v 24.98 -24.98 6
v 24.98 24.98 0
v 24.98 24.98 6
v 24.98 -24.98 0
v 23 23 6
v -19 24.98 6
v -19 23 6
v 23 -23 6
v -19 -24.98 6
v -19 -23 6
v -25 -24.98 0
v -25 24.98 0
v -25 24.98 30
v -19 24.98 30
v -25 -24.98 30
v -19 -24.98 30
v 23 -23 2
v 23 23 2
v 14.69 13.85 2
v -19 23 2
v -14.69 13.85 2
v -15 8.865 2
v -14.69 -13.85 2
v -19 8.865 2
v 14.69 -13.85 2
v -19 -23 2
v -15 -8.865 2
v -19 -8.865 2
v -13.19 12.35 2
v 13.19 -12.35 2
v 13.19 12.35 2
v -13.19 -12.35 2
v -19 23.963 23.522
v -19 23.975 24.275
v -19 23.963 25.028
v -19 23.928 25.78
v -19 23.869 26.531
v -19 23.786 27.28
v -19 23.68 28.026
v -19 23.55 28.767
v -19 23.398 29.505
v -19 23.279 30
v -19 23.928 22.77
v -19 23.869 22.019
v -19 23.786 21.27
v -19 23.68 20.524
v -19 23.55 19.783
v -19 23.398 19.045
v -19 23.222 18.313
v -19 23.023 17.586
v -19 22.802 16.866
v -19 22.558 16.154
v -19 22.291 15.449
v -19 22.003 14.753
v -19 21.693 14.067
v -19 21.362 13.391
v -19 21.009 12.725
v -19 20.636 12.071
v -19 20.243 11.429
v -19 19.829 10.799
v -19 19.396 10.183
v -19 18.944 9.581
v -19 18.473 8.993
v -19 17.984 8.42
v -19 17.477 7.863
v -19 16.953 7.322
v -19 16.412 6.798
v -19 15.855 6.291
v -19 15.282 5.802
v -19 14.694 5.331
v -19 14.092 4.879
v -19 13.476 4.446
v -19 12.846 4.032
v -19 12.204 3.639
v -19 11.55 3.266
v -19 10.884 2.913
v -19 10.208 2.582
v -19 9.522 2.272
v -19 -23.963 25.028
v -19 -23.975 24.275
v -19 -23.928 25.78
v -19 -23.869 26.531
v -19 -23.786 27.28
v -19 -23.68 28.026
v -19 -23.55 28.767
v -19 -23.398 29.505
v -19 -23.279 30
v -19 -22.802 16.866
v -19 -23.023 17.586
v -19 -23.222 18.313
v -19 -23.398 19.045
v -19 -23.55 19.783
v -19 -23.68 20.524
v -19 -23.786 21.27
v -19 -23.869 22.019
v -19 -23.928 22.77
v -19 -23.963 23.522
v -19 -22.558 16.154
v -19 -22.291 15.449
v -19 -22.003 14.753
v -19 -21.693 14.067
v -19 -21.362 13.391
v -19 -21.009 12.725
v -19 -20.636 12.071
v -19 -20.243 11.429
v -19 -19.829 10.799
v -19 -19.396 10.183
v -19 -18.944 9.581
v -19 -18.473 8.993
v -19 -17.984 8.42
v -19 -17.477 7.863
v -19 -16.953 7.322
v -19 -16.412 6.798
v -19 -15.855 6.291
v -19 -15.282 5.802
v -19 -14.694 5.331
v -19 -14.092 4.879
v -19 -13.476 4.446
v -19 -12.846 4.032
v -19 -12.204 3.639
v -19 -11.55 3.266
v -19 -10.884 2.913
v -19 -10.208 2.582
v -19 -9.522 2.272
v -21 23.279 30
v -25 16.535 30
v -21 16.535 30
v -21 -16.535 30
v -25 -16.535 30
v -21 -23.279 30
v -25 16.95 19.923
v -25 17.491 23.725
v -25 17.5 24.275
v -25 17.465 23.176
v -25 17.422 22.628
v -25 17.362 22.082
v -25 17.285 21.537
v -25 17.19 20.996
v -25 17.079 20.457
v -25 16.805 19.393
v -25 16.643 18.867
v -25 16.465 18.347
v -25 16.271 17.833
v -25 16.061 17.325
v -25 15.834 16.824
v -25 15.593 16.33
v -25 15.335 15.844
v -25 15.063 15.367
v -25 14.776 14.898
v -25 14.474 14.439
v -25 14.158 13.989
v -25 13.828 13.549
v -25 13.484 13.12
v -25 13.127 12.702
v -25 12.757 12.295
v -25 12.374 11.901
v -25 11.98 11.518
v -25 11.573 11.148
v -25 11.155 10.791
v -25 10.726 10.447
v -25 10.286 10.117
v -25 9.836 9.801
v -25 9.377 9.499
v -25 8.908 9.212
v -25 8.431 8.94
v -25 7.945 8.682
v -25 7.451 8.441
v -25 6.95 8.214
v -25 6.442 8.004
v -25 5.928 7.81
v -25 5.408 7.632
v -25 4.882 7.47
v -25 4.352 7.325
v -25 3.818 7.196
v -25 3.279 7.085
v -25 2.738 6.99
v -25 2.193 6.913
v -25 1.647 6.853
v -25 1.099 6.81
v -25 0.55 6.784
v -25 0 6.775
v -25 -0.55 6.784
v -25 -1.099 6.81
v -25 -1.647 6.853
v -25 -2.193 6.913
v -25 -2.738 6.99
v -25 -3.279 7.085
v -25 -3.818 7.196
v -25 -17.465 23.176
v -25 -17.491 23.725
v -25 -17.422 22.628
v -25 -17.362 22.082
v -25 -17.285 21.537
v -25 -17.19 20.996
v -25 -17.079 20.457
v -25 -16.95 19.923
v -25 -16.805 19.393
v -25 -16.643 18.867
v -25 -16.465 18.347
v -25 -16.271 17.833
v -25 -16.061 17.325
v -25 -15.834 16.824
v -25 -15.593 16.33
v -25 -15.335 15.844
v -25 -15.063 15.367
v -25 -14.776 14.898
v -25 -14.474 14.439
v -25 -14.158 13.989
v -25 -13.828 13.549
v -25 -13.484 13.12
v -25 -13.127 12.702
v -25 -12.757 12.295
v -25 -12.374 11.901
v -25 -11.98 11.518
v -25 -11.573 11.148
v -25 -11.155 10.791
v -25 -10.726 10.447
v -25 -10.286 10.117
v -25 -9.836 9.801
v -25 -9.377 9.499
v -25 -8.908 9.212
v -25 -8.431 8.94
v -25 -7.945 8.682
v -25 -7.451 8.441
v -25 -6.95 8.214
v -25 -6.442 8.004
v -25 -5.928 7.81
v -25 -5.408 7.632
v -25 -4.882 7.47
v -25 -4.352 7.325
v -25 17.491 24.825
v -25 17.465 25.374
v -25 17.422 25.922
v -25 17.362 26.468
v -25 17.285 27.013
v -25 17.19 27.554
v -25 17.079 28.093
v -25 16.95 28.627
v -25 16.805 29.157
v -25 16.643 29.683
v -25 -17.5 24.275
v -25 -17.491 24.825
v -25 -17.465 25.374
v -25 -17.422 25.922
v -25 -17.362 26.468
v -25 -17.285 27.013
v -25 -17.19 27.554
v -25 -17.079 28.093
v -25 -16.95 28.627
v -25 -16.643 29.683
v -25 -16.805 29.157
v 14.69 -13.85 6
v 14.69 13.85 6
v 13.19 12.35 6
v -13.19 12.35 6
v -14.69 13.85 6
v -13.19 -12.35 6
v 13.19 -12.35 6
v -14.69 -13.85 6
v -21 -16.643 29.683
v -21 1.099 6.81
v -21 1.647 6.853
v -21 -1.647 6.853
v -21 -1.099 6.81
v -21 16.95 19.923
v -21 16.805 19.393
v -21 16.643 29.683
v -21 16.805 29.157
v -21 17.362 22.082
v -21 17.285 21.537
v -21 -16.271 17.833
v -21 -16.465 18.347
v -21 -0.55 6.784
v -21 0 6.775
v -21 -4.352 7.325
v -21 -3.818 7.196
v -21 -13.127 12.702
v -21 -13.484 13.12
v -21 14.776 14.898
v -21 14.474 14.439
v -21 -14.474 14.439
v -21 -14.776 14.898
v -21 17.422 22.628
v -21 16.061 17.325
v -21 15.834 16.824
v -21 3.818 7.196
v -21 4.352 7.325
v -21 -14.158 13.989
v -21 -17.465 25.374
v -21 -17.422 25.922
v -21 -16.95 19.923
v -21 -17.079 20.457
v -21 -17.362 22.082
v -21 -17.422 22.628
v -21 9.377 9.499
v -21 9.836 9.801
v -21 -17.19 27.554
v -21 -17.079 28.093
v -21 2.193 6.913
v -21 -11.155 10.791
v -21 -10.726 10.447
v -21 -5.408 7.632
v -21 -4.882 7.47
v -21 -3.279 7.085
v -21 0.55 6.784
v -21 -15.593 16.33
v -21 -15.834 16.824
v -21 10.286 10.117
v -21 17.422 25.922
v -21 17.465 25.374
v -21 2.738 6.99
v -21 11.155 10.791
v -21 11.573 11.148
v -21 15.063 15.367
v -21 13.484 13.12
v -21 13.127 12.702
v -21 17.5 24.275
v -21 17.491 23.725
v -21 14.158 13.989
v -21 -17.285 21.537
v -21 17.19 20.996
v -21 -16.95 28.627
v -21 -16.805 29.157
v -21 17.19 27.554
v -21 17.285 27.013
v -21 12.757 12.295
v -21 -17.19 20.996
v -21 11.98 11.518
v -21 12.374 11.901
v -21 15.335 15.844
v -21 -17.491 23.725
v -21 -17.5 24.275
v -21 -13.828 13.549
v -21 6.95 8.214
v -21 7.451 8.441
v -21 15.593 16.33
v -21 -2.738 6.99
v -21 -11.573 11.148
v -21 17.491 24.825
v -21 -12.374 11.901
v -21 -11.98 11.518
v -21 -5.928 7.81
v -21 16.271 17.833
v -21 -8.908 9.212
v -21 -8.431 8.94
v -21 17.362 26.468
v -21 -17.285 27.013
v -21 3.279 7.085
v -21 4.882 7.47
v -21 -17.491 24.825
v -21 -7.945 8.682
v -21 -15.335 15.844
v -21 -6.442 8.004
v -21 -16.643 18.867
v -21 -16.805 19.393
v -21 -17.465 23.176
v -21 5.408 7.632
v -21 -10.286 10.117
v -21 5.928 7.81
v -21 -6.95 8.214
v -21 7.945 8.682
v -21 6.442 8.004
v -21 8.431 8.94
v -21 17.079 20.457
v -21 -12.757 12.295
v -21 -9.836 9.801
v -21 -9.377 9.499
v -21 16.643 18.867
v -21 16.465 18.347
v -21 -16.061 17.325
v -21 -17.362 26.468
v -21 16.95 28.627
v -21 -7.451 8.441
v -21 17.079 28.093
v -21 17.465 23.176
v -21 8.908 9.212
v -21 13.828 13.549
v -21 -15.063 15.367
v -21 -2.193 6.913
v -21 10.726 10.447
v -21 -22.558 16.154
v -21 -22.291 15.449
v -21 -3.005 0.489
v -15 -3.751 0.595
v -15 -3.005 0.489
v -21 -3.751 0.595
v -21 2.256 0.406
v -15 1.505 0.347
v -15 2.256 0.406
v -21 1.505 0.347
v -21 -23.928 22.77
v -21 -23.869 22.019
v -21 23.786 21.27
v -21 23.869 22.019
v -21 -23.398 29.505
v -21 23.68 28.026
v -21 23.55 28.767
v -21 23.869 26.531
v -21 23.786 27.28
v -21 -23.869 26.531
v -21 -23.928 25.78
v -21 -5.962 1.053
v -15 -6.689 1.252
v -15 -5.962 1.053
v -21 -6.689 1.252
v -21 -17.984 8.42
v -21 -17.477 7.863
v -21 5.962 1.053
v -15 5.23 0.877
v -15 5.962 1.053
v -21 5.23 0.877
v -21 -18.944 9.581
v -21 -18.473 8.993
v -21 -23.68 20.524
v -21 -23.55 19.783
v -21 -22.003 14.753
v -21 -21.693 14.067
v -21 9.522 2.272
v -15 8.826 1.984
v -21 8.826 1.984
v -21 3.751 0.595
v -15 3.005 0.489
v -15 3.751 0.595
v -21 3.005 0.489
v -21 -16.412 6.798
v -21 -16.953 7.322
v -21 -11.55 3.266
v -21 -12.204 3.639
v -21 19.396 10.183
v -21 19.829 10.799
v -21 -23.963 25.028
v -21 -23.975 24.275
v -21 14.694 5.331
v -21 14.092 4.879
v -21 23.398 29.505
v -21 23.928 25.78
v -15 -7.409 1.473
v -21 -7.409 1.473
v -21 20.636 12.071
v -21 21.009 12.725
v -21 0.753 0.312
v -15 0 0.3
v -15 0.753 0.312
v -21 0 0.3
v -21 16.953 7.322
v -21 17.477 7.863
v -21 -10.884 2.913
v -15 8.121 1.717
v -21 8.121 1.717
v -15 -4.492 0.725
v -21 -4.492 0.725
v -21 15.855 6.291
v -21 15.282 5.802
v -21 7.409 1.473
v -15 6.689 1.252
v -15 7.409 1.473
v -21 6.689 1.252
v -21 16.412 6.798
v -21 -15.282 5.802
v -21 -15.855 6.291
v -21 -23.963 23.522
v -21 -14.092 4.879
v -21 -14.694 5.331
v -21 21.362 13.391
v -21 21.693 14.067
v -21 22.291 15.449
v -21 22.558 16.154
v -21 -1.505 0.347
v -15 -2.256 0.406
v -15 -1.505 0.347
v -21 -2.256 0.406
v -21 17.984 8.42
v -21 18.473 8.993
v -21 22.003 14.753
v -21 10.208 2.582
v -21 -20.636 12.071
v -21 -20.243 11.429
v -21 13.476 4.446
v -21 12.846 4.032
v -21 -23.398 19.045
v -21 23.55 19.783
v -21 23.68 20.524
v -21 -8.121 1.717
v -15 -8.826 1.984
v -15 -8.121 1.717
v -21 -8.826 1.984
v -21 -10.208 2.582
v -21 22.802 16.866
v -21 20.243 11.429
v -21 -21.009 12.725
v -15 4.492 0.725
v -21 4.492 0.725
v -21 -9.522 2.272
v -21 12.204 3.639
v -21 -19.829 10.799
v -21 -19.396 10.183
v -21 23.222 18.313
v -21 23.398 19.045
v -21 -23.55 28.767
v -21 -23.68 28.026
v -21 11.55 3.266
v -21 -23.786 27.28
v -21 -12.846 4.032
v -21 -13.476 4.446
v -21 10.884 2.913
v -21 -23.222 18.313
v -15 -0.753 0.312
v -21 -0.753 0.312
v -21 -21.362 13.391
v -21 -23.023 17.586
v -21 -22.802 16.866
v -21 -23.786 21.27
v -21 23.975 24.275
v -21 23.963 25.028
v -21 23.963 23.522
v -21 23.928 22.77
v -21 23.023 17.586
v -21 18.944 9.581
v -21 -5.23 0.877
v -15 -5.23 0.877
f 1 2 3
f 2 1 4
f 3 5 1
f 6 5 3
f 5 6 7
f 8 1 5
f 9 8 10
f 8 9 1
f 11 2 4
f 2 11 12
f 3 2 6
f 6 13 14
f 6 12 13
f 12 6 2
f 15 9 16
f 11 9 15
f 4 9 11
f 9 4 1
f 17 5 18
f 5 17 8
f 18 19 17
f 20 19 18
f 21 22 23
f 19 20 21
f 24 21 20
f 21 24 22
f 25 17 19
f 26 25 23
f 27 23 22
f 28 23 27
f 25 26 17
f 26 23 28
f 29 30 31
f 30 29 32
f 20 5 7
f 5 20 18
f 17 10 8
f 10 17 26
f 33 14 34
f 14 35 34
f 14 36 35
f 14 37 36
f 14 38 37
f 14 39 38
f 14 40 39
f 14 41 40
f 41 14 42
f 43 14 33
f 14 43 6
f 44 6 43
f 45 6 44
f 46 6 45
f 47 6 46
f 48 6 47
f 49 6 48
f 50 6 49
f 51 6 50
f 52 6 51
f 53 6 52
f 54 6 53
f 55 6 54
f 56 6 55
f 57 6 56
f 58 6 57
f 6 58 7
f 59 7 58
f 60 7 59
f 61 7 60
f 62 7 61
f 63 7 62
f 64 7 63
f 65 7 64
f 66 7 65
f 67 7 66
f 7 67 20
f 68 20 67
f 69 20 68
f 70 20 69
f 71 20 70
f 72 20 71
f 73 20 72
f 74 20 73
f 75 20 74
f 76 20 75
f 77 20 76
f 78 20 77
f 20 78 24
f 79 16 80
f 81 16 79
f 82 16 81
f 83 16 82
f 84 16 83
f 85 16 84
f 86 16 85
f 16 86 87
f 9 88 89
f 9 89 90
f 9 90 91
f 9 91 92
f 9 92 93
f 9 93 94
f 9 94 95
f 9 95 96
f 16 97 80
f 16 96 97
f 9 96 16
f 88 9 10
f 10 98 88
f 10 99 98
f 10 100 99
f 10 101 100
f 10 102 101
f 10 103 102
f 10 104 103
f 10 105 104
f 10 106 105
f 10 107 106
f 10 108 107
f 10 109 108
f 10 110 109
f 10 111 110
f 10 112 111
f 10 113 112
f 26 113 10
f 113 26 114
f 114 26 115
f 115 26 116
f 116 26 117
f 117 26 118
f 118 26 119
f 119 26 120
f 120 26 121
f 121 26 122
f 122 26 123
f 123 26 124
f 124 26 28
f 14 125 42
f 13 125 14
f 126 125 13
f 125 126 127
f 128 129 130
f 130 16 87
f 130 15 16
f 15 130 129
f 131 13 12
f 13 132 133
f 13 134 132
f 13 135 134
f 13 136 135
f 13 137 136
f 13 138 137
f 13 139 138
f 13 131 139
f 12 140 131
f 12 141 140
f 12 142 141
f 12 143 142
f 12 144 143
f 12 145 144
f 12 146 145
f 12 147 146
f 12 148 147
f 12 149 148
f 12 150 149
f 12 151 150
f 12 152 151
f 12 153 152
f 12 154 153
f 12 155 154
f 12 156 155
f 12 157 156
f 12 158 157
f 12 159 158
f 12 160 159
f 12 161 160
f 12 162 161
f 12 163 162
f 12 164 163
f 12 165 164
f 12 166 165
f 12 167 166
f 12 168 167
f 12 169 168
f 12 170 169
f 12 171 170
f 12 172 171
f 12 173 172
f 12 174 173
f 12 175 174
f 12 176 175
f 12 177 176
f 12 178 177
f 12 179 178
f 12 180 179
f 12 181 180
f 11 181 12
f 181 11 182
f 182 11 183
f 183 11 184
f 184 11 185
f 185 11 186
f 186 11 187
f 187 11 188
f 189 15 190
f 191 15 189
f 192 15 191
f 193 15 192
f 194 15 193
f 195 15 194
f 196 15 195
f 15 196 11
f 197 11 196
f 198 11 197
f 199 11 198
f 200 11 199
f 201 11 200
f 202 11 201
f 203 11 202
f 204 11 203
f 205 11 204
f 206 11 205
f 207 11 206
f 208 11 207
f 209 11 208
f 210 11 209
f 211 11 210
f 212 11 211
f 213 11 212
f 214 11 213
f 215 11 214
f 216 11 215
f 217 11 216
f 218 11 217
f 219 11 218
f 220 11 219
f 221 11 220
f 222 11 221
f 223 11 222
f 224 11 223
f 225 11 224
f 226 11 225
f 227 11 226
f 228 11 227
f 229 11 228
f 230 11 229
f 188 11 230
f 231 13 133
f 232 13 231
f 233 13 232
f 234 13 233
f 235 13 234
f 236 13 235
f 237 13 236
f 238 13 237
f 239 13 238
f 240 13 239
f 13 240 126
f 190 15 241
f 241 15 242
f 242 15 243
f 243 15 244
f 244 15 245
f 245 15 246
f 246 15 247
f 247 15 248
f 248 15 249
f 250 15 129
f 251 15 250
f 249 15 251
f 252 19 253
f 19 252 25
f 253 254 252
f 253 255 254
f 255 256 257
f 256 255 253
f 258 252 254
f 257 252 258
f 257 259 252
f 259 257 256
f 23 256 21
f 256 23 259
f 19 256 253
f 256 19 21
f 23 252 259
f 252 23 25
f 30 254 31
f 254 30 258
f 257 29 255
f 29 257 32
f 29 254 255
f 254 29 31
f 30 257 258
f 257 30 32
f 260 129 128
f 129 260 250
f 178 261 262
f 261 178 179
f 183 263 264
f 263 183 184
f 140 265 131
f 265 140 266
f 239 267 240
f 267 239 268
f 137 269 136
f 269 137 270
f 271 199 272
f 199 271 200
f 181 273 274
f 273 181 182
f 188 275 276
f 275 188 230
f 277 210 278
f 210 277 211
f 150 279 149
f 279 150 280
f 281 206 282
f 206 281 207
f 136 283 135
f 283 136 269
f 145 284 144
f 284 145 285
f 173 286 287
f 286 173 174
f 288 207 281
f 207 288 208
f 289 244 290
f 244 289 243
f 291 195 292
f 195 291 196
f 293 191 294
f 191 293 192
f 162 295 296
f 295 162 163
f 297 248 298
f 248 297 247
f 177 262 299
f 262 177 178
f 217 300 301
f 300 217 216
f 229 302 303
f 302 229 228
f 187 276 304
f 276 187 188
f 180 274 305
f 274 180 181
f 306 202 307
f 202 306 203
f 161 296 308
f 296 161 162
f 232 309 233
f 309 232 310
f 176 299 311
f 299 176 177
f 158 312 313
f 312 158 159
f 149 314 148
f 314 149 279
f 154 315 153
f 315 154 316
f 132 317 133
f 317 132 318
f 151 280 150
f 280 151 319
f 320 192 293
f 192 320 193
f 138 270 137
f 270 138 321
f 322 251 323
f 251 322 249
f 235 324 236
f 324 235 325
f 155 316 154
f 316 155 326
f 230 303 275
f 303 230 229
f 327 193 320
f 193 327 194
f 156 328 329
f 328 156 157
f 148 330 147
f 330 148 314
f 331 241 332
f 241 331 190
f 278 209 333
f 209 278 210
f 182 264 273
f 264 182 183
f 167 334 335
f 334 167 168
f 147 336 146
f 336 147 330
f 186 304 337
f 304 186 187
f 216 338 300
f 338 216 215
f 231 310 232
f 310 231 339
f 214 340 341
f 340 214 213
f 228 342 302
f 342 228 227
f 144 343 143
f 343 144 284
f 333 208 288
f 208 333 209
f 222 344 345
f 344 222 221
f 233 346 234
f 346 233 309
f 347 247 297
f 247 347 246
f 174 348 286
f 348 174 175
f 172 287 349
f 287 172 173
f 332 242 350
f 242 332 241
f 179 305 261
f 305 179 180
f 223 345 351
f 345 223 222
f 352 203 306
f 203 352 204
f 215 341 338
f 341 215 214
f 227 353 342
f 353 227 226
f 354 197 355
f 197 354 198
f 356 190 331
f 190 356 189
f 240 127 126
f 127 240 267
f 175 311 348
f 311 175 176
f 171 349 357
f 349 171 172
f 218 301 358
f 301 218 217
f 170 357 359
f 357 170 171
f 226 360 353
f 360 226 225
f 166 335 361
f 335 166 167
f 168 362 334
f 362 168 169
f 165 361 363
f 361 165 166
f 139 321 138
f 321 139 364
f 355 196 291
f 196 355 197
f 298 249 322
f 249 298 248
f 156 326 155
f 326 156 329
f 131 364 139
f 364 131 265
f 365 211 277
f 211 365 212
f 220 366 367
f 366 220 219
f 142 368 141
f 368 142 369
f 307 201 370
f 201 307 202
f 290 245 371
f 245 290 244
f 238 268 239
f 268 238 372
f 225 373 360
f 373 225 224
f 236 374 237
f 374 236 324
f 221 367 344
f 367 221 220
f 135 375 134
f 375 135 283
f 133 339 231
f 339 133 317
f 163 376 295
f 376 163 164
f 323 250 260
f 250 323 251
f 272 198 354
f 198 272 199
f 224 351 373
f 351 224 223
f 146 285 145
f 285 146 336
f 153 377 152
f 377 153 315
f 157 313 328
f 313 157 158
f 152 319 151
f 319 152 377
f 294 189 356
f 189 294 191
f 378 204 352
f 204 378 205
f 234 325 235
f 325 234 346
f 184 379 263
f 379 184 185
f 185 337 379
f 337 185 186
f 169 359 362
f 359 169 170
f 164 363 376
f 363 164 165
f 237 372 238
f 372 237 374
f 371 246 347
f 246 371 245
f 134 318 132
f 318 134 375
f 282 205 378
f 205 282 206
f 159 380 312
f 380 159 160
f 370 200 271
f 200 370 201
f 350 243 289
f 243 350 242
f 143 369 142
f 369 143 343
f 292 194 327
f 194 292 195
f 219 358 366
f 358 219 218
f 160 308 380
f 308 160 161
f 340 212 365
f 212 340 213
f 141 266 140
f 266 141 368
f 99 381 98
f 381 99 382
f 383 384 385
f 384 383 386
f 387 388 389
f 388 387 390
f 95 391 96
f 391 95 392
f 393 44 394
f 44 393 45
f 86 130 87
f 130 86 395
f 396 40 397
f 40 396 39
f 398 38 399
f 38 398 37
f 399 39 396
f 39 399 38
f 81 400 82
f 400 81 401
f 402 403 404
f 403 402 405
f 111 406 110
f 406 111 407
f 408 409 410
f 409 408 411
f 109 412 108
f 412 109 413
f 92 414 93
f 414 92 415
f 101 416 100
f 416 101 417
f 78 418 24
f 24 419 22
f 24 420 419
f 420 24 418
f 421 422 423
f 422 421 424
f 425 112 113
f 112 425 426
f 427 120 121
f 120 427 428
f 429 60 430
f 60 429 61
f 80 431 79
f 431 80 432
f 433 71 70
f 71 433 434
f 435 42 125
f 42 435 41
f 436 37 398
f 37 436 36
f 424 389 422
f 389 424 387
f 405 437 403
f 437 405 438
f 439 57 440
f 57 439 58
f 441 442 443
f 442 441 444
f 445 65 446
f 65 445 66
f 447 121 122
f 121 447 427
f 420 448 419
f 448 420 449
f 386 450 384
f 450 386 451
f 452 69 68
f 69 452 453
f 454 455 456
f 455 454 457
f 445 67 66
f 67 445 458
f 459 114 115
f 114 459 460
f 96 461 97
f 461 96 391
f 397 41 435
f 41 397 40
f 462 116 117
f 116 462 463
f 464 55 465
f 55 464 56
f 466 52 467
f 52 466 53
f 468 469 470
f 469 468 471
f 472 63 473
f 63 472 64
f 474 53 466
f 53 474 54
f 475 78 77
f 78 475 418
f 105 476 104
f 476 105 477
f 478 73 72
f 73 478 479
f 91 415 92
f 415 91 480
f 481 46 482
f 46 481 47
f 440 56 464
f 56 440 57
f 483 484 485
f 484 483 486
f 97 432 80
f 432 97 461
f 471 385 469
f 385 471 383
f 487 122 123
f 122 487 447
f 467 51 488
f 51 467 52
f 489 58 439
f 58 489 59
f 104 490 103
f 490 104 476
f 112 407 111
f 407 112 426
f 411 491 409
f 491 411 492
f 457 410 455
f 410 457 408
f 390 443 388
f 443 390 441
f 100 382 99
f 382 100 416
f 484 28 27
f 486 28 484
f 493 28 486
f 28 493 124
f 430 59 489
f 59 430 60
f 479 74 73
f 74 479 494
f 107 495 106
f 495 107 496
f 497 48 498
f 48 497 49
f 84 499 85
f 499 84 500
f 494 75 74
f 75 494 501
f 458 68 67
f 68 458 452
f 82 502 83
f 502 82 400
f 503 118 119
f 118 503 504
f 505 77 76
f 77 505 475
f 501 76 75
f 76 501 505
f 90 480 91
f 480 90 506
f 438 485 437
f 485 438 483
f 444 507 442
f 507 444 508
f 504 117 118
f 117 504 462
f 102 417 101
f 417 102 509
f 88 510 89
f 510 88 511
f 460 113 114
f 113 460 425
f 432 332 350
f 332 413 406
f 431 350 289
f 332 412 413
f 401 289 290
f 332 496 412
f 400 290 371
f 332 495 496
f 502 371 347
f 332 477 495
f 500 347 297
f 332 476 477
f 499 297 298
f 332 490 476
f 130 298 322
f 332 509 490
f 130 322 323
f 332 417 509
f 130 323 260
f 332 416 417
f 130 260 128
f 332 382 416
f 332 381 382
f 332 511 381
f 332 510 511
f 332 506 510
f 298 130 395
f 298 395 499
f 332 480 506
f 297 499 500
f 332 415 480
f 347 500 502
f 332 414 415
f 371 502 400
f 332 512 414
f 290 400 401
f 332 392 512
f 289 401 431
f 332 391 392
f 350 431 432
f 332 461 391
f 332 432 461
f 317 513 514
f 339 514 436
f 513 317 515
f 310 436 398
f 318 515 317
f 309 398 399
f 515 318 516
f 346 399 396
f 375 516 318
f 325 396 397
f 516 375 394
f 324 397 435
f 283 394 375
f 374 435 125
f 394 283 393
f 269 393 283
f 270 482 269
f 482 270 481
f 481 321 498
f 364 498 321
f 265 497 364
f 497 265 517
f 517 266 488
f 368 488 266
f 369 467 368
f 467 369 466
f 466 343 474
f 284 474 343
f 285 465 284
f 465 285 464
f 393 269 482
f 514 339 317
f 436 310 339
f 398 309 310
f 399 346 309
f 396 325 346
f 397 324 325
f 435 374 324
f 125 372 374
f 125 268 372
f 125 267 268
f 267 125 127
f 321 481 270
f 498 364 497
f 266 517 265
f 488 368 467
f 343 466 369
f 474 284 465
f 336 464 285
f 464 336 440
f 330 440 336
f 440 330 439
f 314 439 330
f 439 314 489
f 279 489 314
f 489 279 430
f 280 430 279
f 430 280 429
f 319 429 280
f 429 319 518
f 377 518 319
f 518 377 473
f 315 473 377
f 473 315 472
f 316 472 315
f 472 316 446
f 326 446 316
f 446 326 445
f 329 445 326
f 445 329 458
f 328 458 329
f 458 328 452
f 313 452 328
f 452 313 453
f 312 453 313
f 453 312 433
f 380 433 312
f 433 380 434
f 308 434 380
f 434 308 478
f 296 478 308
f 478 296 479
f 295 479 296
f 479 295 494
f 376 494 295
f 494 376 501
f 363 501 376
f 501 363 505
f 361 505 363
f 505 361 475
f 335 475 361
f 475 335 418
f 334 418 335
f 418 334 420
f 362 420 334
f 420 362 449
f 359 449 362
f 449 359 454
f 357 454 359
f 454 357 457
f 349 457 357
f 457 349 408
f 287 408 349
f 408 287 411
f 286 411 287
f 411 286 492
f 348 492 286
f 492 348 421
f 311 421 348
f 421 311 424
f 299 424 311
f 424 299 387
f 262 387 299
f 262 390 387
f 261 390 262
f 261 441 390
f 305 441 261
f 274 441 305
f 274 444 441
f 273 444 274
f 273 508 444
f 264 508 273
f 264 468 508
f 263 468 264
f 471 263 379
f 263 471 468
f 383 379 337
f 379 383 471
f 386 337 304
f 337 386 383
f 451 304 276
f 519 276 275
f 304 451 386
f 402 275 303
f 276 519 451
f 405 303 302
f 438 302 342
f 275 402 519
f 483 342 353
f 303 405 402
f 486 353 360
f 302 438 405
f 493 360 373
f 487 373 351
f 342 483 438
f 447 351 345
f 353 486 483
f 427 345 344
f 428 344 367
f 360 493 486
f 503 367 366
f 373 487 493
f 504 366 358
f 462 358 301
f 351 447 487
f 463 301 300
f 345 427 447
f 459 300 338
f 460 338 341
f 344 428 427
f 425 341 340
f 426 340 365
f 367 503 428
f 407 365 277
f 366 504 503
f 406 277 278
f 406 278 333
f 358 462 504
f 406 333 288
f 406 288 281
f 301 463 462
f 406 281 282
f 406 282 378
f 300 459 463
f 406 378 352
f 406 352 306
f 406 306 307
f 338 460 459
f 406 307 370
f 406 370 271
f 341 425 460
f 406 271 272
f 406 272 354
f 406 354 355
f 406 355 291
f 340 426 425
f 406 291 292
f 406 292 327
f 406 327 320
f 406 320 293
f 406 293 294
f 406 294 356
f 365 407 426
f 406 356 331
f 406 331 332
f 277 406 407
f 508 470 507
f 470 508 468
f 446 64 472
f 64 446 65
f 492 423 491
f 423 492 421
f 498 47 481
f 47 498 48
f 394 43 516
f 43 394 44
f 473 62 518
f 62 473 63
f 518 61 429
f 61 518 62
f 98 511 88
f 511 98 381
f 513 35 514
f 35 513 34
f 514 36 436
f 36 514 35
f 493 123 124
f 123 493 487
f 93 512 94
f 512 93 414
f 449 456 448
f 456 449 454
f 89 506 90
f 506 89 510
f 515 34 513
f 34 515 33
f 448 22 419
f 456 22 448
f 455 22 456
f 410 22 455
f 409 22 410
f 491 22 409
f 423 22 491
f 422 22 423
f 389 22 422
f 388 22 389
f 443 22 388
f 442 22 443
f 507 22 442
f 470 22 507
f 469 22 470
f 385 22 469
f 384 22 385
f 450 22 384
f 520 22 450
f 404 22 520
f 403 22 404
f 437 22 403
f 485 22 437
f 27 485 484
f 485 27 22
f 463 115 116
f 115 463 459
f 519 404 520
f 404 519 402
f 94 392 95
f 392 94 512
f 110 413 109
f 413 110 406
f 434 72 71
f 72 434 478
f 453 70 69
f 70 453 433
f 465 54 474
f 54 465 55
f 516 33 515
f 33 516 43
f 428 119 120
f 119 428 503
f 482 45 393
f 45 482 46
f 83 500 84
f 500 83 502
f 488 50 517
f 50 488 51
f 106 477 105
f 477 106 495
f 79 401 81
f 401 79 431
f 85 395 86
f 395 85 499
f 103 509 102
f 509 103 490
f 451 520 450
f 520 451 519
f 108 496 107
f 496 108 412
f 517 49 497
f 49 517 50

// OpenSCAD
//Sample chamber

FDM_offset = 0.02;

chamber_side = 50;
chamber_h = 6;
chamber_wall = 2;

cuv_l = 26.38; 
cuv_w = 24.7;
cuv_h = 37.3;
cuv_wall = 1.5;

LED_d = 47.95;
LED_step = 2;
LED_hole = 35;
vertical_shift = 0.3;

module LEDSampleChamber (){
    union(){
    
    // base and LED arm
    difference(){
        union(){
        // chamber base
        difference(){
            translate([0,0,chamber_h/2])
                cube([chamber_side-2*FDM_offset,chamber_side-2*FDM_offset,6], center=true);
            translate([0,0,chamber_h/2+chamber_wall])
                cube([chamber_side-chamber_wall*2,chamber_side-chamber_wall*2,chamber_h], center=true);
        }
        // LED arm
            translate([-chamber_side/2+6/2,0,30/2])
                cube([6,chamber_side-2*FDM_offset,30], center=true);
        }
        
        // LED hole    
        rotate([0,90,0]){
        translate([-LED_d/2-vertical_shift,0,-50/2+4])
        cylinder(h=10, d=LED_hole, center=true, $fn=200);}
    
        // LED step
        rotate([0,90,0]){
        translate([-LED_d/2-vertical_shift,0,-(50/2-6-1)])
            cylinder(h=LED_step+4, d=LED_d, center=true, $fn=200);}
        }
        
    // cuvette mount
    difference(){
            translate([0,0,chamber_h/2])
                cube([cuv_l+2*cuv_wall,cuv_w+2*cuv_wall,6], center=true);
            translate([0,0,chamber_h/2])
                cube([cuv_l,cuv_w,6], center=true);         
        }
    }    
}

LEDSampleChamber();
